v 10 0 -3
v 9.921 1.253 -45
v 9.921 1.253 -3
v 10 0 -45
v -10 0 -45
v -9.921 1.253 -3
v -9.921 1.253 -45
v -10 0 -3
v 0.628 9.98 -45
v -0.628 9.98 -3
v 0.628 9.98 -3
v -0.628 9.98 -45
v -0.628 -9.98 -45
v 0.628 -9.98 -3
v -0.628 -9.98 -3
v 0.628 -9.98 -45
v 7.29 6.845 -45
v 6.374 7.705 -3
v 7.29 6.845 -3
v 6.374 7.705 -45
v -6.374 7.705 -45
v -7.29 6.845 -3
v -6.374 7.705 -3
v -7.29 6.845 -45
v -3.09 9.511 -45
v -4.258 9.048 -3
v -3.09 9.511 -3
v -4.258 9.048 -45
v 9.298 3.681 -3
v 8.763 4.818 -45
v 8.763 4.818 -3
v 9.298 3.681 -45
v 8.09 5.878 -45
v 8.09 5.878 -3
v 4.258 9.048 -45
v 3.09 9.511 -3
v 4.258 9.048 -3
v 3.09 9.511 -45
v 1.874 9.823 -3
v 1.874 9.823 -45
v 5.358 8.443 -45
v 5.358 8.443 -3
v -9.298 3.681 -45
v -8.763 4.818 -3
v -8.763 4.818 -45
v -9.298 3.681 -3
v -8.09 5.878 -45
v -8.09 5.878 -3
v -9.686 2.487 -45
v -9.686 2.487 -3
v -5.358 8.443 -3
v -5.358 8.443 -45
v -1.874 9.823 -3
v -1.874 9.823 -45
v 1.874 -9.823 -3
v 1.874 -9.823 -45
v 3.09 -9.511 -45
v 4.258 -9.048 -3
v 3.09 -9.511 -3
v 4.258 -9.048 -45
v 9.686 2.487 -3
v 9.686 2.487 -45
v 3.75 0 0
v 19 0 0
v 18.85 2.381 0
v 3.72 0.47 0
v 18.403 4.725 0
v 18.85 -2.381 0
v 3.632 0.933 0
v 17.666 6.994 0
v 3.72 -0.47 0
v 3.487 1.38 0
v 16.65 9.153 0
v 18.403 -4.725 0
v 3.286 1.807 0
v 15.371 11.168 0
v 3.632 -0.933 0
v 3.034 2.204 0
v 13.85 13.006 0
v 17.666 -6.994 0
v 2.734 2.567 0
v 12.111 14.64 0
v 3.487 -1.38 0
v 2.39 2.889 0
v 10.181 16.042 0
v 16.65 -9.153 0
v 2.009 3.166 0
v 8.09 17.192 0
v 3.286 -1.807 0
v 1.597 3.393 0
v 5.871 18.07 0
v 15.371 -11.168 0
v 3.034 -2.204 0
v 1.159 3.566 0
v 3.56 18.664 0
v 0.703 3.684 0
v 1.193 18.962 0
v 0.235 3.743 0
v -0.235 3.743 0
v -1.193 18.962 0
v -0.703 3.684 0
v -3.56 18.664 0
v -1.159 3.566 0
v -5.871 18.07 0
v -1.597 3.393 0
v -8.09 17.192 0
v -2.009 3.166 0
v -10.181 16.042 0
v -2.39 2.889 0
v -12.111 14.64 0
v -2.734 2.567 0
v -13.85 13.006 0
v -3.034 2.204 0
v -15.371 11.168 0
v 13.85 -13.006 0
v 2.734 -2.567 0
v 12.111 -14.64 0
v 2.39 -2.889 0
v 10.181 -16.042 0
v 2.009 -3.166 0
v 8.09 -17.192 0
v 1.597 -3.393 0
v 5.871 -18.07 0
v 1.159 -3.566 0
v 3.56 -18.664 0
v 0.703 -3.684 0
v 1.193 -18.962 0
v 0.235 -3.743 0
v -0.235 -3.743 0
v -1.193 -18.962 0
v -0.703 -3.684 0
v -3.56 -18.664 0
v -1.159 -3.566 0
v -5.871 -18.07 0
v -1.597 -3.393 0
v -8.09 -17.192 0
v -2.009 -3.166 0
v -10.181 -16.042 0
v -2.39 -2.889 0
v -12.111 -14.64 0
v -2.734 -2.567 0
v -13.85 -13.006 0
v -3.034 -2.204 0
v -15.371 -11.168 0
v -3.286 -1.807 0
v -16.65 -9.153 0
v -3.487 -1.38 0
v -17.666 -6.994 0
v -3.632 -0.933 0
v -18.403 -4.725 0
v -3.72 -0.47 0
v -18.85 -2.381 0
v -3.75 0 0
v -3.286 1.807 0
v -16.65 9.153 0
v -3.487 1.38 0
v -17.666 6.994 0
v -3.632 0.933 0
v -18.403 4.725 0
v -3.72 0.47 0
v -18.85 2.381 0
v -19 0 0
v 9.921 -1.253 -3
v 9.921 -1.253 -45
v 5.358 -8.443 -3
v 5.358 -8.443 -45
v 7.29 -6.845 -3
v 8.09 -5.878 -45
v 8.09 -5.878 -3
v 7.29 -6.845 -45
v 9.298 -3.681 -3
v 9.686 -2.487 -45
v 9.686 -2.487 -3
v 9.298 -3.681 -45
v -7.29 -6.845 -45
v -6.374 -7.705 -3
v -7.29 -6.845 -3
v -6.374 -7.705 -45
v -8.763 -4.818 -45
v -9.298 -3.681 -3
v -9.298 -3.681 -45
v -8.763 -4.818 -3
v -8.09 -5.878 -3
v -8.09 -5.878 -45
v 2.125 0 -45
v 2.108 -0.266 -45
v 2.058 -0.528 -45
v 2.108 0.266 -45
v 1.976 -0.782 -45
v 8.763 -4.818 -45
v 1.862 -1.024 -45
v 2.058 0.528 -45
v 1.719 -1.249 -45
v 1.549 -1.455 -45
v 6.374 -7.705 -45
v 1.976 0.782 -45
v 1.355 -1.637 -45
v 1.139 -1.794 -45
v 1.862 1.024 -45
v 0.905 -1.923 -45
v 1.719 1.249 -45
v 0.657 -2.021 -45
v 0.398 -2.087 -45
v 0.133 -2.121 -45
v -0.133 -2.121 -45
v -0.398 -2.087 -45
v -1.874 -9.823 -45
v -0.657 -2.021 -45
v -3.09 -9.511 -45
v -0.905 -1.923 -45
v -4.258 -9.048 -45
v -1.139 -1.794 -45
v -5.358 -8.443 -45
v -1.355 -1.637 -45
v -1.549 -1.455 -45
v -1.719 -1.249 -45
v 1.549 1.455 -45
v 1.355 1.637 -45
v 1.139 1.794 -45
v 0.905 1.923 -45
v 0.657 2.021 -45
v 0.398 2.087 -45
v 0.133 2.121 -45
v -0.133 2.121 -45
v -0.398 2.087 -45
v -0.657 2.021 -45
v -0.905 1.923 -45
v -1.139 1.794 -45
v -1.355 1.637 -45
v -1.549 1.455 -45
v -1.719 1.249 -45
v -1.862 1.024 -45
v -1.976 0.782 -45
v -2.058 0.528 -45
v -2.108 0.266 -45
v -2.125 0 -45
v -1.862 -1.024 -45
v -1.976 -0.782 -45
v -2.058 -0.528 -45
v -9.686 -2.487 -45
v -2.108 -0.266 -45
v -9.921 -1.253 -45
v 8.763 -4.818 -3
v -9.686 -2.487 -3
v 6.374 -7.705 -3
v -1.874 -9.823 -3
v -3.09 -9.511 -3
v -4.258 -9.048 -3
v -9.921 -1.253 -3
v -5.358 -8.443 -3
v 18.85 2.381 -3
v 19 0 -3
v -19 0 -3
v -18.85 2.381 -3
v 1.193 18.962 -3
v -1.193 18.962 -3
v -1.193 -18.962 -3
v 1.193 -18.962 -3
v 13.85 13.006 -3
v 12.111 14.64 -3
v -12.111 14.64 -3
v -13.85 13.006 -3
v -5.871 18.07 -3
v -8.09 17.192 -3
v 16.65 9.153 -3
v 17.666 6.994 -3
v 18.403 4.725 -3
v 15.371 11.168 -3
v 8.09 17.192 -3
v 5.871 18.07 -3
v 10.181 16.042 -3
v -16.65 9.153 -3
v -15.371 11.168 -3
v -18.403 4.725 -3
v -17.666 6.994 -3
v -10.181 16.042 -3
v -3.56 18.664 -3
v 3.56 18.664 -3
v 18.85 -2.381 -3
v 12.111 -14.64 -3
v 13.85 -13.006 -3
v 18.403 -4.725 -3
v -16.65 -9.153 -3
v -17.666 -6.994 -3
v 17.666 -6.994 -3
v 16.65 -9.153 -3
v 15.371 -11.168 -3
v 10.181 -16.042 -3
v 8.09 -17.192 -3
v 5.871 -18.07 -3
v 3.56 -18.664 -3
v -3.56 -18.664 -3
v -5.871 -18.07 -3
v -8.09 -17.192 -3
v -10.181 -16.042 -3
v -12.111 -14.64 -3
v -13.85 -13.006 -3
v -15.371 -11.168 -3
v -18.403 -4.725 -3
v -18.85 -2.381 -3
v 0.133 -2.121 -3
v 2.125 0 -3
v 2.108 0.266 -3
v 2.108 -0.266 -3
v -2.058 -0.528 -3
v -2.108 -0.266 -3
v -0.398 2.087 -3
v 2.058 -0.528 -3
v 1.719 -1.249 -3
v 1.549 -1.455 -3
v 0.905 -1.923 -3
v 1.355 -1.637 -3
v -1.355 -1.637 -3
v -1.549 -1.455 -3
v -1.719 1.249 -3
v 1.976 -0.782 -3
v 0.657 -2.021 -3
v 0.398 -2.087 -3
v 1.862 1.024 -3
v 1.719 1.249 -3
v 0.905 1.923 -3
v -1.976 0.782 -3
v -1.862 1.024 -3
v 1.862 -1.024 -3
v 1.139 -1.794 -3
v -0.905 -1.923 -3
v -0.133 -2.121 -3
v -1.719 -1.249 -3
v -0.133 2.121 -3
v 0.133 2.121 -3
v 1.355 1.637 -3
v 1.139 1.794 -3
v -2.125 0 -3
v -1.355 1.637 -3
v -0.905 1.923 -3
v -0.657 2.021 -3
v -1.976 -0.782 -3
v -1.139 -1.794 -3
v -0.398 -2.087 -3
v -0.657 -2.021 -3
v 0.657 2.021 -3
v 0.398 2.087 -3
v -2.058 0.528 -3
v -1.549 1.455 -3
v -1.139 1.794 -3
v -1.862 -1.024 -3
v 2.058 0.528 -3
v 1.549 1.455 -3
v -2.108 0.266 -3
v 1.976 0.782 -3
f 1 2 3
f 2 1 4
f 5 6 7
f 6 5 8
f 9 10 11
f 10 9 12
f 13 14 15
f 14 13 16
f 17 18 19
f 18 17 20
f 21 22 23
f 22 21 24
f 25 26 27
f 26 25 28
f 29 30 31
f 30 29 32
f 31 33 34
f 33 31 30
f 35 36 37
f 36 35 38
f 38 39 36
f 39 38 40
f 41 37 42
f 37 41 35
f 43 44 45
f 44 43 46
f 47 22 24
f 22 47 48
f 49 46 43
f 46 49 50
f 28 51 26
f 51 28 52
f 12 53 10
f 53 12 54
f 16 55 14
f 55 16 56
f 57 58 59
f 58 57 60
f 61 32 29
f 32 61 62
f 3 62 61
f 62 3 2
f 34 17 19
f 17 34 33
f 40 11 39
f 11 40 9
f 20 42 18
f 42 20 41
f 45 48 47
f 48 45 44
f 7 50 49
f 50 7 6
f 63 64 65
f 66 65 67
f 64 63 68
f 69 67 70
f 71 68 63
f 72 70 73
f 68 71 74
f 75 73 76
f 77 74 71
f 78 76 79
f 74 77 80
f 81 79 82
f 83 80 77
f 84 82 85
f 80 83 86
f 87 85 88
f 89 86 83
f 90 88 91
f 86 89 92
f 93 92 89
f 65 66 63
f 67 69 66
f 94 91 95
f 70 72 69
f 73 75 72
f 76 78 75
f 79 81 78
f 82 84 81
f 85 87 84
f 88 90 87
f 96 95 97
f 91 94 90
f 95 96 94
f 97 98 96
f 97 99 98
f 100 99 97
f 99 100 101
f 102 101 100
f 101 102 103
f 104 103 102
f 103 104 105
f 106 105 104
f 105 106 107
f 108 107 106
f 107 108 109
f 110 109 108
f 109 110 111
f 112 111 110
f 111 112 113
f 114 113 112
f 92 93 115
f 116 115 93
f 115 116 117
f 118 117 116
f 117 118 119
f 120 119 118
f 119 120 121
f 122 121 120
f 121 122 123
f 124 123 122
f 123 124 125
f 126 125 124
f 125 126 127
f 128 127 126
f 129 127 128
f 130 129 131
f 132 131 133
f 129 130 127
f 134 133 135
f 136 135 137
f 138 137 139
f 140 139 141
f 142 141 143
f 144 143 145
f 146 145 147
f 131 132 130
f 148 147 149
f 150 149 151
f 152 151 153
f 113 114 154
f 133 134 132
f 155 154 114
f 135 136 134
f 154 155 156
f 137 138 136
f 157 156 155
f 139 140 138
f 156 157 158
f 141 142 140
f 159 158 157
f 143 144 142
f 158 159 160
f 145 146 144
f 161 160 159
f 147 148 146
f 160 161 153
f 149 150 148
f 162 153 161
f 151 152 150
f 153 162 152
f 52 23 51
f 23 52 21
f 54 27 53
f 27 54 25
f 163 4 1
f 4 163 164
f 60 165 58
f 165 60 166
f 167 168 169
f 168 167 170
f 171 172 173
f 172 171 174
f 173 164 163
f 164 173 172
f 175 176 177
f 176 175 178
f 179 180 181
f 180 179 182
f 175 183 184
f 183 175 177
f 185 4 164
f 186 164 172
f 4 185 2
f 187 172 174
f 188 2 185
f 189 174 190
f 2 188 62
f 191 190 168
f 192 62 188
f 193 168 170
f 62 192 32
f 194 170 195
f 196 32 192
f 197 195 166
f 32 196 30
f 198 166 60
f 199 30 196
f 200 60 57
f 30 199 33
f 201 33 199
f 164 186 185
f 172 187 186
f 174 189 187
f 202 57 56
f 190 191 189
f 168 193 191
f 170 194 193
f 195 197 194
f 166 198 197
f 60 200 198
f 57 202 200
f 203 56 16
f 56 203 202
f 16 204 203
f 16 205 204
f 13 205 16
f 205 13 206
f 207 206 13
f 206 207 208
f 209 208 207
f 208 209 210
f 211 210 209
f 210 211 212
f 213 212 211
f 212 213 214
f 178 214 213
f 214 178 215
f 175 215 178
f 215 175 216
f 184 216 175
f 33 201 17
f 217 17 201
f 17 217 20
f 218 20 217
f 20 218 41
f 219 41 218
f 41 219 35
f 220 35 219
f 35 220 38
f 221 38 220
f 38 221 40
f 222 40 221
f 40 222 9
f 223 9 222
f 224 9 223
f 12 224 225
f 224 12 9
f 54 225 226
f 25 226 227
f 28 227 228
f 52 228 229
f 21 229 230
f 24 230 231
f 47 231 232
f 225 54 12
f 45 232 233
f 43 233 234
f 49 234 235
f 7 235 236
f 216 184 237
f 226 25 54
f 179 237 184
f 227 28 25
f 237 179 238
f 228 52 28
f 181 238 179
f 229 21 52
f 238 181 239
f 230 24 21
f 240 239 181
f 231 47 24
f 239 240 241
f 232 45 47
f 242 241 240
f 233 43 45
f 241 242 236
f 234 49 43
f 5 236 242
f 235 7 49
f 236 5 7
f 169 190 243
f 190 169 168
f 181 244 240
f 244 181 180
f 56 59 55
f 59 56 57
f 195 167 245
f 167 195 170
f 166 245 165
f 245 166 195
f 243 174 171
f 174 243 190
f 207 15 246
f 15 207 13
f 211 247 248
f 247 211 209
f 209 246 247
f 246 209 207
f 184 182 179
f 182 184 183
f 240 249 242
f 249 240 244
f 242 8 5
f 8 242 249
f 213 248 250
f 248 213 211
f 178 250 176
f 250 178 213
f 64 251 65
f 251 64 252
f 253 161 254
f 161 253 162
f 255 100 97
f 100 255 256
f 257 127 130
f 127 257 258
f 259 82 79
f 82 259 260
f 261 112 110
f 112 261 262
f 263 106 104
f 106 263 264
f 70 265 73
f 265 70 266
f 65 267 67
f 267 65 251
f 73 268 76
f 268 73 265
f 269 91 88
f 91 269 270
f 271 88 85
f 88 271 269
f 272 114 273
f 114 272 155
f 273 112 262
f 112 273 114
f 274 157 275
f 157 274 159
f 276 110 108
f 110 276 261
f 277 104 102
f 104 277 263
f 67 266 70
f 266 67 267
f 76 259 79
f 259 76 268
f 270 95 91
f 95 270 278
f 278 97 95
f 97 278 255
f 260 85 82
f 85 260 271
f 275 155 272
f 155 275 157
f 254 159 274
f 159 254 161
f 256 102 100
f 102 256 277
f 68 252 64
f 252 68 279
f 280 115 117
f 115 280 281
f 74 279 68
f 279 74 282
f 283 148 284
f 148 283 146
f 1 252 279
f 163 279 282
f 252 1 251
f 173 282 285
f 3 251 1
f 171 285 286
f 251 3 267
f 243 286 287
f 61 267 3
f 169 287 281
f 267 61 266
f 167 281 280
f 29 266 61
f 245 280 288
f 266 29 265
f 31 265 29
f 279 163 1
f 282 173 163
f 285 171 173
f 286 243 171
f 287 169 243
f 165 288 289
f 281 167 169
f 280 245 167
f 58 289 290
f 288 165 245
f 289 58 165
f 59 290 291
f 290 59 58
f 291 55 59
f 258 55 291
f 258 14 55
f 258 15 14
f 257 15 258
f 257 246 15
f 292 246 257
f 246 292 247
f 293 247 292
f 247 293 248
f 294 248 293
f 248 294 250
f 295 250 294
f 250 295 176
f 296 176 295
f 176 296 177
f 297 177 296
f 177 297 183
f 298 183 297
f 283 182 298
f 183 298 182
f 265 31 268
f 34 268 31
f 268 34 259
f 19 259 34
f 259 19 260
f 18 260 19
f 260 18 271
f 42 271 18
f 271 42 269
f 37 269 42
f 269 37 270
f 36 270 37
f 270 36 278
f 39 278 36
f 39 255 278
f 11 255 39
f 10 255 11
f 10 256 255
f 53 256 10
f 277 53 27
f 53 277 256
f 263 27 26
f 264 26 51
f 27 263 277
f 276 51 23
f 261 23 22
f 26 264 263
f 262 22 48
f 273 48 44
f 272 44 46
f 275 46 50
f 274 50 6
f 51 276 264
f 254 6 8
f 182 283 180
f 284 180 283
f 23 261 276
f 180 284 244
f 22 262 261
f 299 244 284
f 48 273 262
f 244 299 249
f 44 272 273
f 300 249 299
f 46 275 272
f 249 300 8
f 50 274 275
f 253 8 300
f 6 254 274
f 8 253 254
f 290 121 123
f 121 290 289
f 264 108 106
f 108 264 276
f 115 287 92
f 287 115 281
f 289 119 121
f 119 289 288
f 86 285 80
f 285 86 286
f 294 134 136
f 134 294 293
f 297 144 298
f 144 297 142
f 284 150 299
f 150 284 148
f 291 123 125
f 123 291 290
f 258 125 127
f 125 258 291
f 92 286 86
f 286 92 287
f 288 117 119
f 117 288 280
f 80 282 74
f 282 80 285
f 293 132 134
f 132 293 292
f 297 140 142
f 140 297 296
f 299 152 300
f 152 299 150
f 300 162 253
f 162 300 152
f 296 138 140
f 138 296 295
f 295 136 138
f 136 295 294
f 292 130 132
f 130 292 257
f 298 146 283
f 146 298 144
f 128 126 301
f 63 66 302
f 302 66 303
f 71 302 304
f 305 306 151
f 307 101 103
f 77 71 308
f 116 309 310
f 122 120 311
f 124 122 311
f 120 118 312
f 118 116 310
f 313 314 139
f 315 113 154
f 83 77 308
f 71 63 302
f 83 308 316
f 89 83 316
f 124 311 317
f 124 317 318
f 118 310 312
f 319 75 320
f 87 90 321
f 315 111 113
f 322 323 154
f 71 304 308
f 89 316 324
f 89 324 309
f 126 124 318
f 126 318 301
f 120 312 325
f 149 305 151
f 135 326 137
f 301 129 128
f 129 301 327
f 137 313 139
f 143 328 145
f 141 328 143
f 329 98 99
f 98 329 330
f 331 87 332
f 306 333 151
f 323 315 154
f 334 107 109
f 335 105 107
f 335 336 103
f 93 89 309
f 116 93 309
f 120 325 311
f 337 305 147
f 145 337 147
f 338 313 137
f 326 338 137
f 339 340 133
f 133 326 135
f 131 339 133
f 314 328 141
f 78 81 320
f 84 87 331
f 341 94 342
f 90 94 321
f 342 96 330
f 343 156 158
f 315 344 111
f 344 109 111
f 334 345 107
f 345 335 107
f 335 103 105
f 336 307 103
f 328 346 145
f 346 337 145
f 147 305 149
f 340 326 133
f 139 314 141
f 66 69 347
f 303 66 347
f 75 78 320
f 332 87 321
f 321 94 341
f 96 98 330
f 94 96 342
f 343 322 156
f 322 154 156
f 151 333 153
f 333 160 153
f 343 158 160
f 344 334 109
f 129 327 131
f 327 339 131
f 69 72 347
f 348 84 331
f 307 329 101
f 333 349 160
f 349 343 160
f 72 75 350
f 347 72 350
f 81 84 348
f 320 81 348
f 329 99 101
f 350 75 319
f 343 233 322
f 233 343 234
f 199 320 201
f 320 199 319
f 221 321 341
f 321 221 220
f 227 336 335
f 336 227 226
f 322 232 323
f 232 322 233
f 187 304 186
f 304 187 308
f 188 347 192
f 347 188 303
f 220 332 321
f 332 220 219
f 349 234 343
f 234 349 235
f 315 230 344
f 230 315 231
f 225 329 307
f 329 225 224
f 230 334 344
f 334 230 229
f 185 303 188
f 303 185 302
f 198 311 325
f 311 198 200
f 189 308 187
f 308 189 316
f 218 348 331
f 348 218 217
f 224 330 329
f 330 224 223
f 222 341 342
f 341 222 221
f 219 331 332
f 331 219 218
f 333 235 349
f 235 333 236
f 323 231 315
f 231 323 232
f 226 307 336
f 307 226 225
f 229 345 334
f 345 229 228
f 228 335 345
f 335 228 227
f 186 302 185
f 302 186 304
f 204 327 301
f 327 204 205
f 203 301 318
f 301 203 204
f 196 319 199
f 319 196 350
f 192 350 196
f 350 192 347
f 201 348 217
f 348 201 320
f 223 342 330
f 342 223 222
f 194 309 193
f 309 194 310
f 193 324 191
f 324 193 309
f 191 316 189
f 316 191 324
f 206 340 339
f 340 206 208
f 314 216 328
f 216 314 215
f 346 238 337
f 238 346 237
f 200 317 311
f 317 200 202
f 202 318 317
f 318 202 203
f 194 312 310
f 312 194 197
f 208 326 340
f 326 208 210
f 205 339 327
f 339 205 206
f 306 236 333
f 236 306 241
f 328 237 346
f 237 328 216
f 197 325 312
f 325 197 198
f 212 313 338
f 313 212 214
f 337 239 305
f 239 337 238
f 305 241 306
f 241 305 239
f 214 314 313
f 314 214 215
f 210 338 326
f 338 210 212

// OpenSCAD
$fn = 50;


difference() {
	union() {
		translate(v = [0, 0, -45.0000000000]) {
			cylinder(h = 45, r = 10.0000000000);
		}
		translate(v = [0, 0, -3.0000000000]) {
			cylinder(h = 3, r = 19.0000000000);
		}
	}
	union() {
		translate(v = [0, 0, 0]) {
			rotate(a = [0, 0, 0]) {
				difference() {
					union() {
						#translate(v = [0, 0, -45.0000000000]) {
							cylinder(h = 45, r = 2.0000000000);
						}
						#translate(v = [0, 0, -3]) {
							cylinder(h = 3, r = 10.0000000000, r1 = 2.1250000000, r2 = 3.7500000000);
						}
						#translate(v = [0, 0, -45.0000000000]) {
							cylinder(h = 45, r = 2.1250000000);
						}
						#translate(v = [0, 0, -45.0000000000]) {
							cylinder(h = 45, r = 2.0000000000);
						}
					}
					union();
				}
			}
		}
	}
}
